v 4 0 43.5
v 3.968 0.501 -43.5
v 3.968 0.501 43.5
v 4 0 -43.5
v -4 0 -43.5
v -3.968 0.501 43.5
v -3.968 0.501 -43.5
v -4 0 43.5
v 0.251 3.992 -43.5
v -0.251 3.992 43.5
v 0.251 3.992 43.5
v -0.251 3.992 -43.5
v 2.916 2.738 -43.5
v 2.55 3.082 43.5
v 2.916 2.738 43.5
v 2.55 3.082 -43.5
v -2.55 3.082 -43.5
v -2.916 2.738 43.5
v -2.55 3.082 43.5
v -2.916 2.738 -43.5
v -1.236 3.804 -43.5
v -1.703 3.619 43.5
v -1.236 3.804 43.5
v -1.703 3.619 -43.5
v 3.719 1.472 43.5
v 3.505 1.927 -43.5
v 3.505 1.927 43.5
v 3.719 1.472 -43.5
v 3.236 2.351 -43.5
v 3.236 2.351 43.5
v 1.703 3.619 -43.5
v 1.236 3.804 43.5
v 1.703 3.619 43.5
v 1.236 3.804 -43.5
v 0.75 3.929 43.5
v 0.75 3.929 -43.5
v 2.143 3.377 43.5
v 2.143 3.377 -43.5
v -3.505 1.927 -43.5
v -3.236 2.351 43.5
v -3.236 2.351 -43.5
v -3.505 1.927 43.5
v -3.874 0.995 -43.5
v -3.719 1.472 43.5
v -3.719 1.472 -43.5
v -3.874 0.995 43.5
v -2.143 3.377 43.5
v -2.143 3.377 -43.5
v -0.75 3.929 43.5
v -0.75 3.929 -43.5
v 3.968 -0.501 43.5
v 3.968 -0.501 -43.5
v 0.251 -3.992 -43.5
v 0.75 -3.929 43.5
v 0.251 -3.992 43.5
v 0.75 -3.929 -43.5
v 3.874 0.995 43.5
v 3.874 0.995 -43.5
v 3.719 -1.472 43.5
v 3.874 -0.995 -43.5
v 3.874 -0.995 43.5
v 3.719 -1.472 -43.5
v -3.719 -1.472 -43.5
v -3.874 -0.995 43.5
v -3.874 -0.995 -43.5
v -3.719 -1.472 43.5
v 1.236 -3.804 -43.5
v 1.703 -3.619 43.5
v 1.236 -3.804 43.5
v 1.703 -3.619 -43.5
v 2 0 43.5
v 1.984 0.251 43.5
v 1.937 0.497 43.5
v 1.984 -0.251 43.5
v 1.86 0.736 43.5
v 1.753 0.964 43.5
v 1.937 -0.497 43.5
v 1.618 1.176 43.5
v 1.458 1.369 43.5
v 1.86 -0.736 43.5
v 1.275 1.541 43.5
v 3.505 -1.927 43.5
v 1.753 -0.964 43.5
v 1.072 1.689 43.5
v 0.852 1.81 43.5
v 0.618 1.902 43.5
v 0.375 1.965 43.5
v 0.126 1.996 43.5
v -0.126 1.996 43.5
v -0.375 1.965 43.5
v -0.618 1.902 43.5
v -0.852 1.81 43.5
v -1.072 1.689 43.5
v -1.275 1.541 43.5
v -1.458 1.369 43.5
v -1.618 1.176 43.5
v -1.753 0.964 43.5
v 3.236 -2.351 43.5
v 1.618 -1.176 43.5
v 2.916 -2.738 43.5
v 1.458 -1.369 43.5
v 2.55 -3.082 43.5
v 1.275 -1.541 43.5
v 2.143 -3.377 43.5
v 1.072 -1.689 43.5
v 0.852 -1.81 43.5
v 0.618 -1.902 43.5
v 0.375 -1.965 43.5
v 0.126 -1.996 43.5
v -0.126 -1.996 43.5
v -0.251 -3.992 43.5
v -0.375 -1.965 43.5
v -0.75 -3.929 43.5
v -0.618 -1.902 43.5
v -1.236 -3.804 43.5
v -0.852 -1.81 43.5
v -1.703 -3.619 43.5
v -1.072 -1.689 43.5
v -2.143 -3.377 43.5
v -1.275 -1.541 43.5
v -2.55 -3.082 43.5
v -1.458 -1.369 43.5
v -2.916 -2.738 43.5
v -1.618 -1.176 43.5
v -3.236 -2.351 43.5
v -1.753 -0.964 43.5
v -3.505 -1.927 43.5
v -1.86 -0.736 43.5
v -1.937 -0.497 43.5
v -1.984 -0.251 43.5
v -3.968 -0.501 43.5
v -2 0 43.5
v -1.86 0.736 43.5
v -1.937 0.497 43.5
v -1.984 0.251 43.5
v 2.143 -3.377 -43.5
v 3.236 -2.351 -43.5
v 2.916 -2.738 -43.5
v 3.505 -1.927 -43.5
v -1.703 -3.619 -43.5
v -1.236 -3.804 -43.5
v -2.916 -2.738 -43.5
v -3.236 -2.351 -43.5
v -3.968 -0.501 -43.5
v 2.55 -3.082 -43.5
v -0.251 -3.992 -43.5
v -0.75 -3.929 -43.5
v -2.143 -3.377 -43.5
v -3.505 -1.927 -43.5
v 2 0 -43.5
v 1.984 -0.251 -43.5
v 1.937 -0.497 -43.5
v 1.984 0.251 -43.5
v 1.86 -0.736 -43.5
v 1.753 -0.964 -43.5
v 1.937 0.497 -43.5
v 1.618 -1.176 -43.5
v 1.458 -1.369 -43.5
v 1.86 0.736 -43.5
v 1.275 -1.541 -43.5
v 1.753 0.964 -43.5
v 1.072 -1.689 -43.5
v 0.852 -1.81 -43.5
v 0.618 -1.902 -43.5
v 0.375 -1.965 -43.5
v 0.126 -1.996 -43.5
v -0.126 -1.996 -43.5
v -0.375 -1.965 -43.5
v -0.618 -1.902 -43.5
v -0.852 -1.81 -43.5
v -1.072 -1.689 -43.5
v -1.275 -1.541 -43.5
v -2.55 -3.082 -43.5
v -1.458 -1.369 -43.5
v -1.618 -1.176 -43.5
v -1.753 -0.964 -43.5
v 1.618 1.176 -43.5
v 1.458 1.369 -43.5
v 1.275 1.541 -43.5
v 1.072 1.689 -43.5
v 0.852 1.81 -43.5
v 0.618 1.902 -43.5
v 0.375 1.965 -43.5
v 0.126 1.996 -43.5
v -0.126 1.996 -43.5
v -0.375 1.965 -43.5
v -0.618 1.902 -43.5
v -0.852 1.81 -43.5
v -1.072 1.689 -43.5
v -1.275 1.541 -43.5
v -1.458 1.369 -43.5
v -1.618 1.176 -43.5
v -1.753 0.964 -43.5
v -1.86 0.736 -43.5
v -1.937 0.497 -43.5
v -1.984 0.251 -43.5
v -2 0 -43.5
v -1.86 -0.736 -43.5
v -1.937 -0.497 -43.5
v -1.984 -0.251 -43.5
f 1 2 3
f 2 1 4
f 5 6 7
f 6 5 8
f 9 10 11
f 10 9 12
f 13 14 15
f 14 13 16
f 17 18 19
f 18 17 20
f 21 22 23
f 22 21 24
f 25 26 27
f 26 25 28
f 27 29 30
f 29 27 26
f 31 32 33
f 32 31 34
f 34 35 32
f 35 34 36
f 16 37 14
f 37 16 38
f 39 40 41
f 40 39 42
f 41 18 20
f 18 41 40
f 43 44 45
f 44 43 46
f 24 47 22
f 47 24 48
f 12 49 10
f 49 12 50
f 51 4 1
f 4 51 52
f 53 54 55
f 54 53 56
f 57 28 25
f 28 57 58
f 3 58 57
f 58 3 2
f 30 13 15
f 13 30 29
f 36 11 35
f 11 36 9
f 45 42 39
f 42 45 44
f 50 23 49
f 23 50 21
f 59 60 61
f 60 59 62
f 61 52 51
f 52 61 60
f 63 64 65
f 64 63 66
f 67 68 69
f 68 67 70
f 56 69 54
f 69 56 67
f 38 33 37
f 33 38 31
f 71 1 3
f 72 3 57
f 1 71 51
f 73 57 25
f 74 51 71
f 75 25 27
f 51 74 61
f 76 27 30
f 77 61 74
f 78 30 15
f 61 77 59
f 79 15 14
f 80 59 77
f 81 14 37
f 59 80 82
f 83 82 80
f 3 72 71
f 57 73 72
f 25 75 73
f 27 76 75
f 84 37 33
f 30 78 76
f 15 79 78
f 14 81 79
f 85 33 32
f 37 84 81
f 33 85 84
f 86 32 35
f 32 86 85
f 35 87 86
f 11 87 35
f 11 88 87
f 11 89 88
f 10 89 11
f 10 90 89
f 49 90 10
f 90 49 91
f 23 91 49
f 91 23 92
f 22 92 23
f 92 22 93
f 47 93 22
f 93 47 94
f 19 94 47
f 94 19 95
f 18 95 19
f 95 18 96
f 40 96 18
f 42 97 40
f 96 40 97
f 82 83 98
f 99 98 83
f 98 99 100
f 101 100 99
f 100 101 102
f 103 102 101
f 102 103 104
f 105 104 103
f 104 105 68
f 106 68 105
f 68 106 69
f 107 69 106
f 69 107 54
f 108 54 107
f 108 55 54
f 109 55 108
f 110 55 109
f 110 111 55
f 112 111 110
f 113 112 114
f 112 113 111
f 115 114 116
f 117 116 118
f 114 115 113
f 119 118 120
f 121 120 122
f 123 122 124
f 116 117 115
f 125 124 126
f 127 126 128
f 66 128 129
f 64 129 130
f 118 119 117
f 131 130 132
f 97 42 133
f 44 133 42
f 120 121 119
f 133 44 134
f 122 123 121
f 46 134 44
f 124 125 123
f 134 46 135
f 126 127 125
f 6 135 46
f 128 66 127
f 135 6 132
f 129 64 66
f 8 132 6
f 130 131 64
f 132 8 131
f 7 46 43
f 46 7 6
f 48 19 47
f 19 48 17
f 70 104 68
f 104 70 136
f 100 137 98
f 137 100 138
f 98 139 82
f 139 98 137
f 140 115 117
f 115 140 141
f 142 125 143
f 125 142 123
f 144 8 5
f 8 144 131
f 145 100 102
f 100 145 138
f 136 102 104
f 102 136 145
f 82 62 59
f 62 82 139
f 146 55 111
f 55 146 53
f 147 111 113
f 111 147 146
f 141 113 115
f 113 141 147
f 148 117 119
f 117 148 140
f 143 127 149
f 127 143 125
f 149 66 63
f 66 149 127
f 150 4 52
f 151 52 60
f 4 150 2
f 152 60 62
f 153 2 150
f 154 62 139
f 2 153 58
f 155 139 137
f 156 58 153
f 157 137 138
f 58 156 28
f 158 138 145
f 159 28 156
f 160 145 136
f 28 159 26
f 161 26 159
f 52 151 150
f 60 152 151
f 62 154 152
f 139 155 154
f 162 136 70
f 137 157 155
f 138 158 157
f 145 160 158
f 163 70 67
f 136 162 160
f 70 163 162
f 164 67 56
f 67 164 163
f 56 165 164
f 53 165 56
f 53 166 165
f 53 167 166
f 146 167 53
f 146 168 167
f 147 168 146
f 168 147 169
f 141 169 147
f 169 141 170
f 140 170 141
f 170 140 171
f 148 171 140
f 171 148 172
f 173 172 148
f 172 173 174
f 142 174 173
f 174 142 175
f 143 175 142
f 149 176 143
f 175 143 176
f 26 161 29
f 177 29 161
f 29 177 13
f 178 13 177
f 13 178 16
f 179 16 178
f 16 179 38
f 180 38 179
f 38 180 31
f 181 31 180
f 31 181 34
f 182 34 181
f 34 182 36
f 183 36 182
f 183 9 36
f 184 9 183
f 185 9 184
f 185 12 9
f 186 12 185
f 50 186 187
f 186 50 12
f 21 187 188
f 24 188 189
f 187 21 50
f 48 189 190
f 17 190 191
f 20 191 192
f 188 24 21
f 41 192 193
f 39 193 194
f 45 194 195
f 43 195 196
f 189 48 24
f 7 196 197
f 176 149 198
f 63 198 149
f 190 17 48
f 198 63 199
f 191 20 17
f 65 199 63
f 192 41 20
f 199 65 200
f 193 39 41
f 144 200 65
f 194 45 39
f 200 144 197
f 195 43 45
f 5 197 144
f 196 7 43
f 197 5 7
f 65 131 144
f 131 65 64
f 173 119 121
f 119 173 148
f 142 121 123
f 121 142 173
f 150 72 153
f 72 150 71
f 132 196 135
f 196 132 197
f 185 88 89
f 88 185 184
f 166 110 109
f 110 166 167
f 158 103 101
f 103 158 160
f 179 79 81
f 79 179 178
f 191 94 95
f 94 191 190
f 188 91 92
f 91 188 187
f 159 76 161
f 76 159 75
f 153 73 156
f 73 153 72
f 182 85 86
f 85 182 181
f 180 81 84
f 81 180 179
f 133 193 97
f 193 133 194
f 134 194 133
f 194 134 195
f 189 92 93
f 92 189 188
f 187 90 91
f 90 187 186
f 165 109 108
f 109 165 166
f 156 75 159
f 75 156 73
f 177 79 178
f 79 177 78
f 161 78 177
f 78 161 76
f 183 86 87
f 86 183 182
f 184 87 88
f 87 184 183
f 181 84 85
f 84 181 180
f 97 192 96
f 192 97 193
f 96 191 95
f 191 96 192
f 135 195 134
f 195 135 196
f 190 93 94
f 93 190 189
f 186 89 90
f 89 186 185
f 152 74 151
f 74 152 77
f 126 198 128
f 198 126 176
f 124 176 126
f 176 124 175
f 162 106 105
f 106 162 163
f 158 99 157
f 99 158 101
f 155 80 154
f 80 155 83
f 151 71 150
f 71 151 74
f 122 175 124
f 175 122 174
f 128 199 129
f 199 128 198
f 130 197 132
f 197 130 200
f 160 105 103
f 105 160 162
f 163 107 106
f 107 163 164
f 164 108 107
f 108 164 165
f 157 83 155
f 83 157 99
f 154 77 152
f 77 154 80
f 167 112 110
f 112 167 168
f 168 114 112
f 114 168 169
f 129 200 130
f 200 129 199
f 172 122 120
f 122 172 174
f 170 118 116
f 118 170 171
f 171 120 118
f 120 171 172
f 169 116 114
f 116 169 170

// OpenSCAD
$fn = 50;


difference() {
	union() {
		translate(v = [0, 0, -43.5000000000]) {
			cylinder(h = 87, r = 4.0000000000);
		}
	}
	union() {
		translate(v = [0, 0, -100.0000000000]) {
			cylinder(h = 200, r = 2.0000000000);
		}
	}
}
